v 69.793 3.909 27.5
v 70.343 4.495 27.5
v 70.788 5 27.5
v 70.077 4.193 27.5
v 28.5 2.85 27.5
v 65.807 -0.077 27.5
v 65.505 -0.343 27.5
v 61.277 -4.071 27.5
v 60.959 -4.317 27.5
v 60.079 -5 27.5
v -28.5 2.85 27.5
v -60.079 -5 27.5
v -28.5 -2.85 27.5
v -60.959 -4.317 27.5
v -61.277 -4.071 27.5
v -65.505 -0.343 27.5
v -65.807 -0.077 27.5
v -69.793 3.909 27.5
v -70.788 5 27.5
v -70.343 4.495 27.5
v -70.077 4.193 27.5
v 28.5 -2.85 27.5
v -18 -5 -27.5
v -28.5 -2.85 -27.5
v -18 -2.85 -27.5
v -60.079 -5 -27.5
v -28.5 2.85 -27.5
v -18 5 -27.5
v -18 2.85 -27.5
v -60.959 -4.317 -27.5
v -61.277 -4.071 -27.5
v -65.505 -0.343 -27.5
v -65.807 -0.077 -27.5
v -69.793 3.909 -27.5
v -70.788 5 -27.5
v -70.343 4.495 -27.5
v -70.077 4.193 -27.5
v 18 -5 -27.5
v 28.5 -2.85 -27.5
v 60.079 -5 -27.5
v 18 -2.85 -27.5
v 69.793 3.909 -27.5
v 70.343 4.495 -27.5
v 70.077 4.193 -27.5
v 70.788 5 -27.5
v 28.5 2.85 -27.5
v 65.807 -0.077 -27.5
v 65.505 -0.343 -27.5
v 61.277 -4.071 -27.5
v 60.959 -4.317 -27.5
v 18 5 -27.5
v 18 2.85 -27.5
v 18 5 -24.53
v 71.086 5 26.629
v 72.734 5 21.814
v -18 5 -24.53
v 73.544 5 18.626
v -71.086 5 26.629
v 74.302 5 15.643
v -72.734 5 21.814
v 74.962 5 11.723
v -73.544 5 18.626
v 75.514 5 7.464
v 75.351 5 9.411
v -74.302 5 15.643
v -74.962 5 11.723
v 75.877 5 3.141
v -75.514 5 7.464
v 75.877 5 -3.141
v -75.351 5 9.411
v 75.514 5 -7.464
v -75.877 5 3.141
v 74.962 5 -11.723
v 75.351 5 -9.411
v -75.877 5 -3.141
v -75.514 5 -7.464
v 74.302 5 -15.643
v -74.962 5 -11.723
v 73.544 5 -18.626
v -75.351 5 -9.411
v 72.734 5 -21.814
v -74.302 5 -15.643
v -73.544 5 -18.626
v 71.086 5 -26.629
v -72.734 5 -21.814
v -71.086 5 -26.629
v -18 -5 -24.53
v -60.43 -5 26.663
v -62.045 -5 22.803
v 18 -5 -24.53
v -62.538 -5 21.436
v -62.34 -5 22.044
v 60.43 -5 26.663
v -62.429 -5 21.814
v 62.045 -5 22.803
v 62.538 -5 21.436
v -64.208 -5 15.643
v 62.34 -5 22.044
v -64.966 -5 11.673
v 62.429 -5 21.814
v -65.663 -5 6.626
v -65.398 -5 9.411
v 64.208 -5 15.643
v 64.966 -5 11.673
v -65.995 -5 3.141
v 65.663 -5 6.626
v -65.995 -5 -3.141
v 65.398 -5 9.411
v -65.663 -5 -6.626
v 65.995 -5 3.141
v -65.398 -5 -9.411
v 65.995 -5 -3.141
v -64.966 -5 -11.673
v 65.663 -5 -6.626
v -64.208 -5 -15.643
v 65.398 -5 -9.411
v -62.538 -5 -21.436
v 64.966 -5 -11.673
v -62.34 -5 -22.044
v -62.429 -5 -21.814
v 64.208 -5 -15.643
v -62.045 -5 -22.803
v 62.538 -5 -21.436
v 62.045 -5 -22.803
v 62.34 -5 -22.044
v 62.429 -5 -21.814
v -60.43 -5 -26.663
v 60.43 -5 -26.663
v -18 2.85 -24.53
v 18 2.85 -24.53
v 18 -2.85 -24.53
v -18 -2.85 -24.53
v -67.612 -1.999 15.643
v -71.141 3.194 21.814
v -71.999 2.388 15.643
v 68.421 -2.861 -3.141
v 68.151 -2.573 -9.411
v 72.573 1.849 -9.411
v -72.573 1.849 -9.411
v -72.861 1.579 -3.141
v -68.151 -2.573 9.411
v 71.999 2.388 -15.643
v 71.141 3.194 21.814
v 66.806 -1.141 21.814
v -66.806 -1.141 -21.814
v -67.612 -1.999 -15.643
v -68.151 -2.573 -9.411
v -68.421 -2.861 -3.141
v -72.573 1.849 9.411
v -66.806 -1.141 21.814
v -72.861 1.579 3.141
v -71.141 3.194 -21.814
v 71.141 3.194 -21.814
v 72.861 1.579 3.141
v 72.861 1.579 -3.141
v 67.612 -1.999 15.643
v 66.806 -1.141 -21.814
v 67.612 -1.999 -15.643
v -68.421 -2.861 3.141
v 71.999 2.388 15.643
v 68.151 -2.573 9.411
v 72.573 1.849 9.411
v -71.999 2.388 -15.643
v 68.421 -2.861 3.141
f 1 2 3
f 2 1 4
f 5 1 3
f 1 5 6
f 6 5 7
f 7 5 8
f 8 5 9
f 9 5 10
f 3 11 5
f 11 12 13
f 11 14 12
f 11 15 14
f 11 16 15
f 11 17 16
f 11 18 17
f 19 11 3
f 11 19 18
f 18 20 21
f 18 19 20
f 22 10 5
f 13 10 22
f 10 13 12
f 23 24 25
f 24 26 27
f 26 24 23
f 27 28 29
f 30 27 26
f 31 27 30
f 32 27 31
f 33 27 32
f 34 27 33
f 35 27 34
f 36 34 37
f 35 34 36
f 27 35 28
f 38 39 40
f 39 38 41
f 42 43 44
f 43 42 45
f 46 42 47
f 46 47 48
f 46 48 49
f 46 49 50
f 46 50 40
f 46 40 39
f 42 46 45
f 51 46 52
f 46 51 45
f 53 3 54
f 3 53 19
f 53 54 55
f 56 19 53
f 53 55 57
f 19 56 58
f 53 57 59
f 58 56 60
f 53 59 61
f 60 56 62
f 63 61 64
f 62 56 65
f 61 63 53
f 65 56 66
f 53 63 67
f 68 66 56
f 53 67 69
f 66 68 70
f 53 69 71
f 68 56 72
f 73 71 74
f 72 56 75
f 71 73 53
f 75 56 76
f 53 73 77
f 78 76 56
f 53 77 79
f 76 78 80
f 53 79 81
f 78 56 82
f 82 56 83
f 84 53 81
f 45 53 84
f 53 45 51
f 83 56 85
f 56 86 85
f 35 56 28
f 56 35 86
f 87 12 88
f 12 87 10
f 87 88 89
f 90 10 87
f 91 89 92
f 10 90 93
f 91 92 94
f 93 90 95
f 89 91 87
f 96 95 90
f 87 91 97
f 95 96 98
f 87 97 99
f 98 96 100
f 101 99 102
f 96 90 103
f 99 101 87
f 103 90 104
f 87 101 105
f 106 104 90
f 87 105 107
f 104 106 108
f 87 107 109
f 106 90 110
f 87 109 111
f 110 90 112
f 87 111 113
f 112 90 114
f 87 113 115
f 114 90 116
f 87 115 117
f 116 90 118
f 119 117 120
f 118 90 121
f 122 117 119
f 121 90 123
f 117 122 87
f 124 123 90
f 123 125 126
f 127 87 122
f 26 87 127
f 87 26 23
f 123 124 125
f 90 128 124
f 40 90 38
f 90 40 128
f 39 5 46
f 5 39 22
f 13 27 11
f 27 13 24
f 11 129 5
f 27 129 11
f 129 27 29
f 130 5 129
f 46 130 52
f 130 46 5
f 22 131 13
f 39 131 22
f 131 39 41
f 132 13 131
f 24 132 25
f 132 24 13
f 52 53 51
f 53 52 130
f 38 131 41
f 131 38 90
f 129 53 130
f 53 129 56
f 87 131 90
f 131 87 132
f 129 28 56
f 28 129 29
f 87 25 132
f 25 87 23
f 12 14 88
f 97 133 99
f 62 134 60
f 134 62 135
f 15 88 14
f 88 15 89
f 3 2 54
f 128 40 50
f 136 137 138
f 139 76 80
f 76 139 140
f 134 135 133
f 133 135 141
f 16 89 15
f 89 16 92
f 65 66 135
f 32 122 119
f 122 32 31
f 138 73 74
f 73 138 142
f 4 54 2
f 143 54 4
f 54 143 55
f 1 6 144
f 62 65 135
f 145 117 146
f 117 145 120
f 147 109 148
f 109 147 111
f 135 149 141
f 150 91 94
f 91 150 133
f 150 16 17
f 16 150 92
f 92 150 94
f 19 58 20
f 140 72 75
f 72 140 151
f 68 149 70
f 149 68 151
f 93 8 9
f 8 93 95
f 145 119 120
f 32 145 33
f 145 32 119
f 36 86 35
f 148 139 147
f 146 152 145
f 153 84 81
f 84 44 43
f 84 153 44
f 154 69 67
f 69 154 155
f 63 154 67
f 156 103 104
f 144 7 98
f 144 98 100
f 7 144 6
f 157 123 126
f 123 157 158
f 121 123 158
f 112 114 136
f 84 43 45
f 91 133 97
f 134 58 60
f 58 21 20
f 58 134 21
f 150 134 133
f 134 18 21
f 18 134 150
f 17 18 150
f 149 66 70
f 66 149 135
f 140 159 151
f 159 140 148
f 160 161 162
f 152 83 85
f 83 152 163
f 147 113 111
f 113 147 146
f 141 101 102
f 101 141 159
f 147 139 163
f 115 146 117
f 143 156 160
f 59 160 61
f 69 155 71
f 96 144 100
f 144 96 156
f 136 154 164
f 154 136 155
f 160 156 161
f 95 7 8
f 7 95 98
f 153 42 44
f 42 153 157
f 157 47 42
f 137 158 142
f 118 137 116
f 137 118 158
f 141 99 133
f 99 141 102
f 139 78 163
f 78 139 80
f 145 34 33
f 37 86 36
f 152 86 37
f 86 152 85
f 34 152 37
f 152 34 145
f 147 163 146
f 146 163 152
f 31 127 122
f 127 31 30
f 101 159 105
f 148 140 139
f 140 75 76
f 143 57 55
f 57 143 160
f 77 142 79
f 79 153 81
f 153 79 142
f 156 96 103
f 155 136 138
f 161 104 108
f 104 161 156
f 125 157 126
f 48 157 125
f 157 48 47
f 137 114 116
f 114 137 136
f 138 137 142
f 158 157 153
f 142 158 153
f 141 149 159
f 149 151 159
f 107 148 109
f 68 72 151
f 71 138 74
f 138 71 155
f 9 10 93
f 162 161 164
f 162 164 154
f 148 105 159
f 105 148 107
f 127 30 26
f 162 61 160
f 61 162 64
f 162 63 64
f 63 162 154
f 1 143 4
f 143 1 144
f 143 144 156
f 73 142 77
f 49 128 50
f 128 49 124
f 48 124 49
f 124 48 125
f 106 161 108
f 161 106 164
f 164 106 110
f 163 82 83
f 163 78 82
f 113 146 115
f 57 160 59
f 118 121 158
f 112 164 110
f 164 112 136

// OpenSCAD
$fn = 100;
intersection()
{
  translate(v = [0, 70, 0])
  {
    sphere(r = 100);
  }
  difference()
  {
    cube(size = [200, 10, 55], center = true);
    cube(size = [57, 5.7, 71], center = true);
    translate(v = [0, 0, -26.03])
    {
      cube(size = [36, 10.03, 3], center = true);
    }
  }
}
